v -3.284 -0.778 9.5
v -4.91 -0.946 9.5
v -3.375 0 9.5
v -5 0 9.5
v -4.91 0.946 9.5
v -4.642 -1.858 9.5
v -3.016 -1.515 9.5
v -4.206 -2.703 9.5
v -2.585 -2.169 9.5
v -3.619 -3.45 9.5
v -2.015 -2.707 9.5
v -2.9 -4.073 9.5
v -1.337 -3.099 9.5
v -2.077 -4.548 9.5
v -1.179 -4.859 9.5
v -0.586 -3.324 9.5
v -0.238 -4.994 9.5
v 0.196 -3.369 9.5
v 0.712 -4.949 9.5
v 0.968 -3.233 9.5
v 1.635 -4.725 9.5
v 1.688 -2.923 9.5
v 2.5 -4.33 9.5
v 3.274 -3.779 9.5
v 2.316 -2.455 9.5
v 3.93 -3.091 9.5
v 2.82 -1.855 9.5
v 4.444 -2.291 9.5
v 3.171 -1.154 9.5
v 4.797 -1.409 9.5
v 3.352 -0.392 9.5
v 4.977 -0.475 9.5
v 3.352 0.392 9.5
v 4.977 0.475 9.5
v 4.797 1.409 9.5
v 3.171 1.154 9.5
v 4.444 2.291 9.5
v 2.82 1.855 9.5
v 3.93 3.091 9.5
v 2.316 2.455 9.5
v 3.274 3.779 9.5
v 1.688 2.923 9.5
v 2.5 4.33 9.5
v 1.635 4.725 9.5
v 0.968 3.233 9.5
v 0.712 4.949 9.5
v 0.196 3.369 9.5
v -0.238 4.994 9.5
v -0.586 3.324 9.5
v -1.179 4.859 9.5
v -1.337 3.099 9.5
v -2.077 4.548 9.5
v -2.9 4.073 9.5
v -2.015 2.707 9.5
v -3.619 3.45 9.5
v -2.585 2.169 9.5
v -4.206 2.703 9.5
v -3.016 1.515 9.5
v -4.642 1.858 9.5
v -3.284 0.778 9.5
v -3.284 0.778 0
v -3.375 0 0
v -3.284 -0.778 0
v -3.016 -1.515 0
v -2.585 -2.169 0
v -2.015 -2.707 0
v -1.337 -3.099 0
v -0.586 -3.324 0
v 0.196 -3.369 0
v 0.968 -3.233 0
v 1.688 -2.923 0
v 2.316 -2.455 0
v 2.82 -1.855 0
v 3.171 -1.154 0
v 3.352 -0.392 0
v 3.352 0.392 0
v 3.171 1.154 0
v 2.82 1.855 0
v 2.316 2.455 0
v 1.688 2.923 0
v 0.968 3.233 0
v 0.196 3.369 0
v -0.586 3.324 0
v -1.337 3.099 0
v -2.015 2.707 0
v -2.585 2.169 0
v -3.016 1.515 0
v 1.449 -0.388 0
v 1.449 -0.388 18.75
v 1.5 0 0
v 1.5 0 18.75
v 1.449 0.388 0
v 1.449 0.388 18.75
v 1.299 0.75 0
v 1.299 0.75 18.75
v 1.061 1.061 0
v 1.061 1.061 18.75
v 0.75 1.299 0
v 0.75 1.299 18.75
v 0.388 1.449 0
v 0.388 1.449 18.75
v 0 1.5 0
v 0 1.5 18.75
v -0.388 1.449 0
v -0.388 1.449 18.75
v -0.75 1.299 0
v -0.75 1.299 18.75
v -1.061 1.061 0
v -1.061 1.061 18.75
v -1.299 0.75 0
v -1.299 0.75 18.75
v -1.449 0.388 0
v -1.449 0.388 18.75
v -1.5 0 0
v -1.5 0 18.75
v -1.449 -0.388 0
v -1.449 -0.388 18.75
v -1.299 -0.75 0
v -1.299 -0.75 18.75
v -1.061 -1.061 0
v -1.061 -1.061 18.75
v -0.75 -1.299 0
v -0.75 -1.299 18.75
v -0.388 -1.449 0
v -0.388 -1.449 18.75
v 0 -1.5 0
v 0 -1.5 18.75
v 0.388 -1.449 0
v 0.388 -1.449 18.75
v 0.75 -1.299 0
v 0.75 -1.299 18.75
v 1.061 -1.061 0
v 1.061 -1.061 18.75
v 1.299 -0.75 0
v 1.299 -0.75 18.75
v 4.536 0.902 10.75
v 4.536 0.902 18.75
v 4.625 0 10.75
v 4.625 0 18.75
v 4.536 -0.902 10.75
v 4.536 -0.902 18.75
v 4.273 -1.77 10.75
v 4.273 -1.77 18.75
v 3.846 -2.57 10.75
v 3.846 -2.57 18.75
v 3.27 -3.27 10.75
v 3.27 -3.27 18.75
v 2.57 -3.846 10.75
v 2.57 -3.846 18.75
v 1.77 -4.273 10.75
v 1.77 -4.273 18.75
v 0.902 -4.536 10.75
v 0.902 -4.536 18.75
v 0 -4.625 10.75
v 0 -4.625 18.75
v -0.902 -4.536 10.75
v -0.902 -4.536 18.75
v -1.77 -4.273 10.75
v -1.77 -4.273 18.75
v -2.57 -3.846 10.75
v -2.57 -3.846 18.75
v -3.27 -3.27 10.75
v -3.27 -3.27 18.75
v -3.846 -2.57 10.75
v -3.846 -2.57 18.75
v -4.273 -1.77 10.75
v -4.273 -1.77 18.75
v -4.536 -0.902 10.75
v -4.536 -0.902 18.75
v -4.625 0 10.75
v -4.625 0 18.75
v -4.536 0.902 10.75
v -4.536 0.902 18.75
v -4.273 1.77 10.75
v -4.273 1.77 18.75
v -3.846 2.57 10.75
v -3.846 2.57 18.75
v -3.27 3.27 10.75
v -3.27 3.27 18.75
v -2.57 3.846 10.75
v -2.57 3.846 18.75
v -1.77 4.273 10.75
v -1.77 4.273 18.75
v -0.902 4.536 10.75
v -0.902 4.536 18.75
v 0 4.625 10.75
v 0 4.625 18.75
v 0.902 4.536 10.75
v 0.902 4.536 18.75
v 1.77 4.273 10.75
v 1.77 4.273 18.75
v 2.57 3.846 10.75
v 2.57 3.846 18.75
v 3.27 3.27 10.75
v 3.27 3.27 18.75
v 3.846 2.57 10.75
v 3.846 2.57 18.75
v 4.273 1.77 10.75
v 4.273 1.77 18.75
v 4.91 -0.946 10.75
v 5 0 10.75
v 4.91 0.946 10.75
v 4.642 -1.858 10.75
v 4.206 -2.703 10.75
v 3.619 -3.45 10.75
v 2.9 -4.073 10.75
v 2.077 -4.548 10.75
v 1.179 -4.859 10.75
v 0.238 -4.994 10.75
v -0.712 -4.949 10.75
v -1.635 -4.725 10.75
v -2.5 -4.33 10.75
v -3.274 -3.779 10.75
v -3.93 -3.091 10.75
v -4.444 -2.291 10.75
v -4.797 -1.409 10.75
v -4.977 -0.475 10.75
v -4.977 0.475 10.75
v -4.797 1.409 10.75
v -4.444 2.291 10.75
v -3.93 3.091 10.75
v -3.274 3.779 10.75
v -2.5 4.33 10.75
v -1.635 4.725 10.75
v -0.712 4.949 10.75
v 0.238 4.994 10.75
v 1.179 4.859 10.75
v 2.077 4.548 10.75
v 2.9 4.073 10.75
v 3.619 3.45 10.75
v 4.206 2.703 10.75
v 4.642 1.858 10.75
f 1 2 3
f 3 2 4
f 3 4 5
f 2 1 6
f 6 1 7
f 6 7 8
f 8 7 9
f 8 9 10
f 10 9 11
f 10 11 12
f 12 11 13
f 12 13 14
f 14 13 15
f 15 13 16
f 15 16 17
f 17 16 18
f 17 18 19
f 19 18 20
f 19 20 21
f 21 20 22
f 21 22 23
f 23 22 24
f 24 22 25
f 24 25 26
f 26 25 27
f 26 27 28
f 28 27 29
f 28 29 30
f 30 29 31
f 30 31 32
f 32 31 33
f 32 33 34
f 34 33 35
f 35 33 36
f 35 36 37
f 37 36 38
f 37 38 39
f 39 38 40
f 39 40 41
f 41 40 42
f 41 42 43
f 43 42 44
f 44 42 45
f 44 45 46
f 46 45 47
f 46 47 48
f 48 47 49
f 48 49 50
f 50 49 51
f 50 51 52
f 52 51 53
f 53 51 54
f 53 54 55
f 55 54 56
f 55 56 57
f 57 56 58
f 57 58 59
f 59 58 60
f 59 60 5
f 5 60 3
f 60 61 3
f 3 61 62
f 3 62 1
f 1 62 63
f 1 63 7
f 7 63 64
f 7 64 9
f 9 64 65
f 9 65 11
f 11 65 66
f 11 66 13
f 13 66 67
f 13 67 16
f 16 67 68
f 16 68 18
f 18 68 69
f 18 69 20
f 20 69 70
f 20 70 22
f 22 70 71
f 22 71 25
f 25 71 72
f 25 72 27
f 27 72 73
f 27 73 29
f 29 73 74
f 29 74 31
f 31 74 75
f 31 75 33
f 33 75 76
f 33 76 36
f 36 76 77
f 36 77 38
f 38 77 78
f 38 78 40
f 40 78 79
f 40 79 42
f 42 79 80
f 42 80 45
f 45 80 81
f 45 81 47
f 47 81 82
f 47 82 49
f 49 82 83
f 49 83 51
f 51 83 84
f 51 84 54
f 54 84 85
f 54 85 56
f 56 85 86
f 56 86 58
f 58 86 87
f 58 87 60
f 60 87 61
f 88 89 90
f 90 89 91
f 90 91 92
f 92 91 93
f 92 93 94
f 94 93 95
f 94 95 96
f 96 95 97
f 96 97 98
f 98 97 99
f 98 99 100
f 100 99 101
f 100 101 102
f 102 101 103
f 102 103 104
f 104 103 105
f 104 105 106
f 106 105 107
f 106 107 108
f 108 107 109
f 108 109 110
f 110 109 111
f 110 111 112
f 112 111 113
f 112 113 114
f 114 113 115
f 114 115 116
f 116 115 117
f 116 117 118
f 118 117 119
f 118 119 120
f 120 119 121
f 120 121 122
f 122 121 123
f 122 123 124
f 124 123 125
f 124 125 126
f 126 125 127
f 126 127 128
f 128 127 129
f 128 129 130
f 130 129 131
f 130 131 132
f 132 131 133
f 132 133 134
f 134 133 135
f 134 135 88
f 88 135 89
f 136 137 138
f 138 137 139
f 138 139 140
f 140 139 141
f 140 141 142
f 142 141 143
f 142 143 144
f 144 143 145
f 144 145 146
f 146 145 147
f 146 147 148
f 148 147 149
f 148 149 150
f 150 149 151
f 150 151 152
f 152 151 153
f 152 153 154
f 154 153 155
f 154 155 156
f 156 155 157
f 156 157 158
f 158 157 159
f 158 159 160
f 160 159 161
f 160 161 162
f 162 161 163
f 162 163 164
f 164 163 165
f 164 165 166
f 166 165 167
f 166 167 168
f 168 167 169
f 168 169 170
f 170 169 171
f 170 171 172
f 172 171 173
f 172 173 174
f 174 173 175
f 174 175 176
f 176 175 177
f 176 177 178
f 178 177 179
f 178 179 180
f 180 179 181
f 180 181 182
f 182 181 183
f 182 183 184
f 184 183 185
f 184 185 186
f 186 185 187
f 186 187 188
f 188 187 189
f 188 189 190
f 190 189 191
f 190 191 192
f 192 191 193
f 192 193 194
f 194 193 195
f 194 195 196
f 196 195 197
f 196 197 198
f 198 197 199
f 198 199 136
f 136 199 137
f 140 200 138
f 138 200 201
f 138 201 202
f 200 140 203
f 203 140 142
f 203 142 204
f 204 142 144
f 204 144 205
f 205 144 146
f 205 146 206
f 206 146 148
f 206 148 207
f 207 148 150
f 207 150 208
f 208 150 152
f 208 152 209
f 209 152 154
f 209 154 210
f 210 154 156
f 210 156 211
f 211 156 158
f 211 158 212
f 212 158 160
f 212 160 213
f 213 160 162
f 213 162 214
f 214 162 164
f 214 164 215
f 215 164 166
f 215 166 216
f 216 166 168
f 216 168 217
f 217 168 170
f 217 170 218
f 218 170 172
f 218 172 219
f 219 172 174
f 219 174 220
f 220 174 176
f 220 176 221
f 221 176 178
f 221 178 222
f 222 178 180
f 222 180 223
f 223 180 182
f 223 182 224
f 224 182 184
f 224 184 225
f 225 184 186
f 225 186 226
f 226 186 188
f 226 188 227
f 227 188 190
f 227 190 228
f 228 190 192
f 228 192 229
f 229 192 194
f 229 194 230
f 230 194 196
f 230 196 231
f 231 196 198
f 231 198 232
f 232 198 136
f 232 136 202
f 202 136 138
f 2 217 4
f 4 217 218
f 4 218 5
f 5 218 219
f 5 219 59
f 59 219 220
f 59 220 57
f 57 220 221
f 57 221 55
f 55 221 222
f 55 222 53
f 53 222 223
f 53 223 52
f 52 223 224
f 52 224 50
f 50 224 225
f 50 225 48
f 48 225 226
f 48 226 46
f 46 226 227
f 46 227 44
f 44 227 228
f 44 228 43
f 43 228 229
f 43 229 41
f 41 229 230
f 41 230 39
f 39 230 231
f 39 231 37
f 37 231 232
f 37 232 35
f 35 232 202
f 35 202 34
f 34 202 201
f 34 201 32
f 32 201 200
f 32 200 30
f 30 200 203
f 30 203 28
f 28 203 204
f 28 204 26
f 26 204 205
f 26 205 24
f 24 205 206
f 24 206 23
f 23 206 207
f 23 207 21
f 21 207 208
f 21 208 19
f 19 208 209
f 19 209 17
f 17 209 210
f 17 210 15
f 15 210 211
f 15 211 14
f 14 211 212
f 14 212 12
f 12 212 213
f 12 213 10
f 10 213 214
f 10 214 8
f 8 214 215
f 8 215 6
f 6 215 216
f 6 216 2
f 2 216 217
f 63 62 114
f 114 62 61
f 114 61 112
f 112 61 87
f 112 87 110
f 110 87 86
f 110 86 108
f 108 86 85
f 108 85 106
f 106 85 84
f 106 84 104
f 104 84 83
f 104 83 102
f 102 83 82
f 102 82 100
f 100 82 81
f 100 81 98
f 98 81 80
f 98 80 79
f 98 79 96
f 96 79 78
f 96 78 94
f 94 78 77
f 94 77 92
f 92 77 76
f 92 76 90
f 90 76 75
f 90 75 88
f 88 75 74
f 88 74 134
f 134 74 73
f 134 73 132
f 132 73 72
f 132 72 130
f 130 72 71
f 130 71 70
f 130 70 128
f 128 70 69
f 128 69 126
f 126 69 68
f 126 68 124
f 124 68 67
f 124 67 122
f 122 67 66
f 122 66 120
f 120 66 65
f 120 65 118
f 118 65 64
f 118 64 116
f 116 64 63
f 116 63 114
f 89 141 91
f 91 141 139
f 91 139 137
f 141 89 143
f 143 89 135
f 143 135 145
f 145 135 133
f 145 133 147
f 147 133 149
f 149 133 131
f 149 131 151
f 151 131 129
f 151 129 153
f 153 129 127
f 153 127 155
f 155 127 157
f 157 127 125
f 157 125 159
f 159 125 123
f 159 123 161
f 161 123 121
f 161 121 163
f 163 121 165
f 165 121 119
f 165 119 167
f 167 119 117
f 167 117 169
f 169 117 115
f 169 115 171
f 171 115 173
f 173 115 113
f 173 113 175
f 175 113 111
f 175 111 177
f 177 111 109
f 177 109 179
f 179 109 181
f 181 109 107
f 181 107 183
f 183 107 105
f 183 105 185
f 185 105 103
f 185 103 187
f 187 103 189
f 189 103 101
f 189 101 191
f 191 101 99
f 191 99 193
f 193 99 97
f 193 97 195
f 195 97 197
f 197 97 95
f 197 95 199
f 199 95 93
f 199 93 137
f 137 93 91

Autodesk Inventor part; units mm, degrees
ref_plane "YZ Plane" through (0, 0, 0) normal (1, 0, 0) x (0, 1, 0)
ref_plane "XZ Plane" through (0, 0, 0) normal (0, 1, 0) x (-1, 0, 0)
ref_plane "XY Plane" through (0, 0, 0) normal (0, 0, 1) x (1, 0, 0)
sketch "Sketch1" plane through (0, 0, 0) normal (0, 0, 1) x (1, 0, 0)
  circle A0 centre (0, 0) radius 5
  dimension "d0" = 10
extrude "Extrusion1" add sketch "Sketch1" along normal blind 18.75
sketch "Sketch2" plane through (0, 0, 18.75) normal (0, 0, 1) x (1, 0, 0)
  circle A0 centre (0, 0) radius 5
  circle A1 centre (0, 0) radius 4.625
  dimension "d3" = 9.25
extrude "Extrusion2" cut sketch "Sketch2" against normal blind 8
sketch "Sketch3" plane through (0, 0, 18.75) normal (0, 0, 1) x (1, 0, 0)
  circle A0 centre (0, 0) radius 1.5
  dimension "d6" = 3
extrude "Extrusion3" cut sketch "Sketch3" against normal blind 50
sketch "Sketch4" plane through (0, 0, 0) normal (0, 0, -1) x (-1, 0, 0)
  circle A0 centre (0, 0) radius 3.375
  circle A1 centre (0, 0) radius 5
  dimension "d9" = 6.75
  dimension "d10" = 10
extrude "Extrusion4" cut sketch "Sketch4" against normal blind 8.25
sketch "Sketch5" plane through (0, 0, 8.25) normal (0, 0, -1) x (-1, 0, 0)
  circle A0 centre (0, 0) radius 3.375
  circle A1 centre (0, 0) radius 3.375 projected
  circle A2 centre (0, 0) radius 5
  dimension "d13" = 6.75
  dimension "d14" = 10
thread "Thread1" size "M7x1" class "6g" standard "ANSI Metric M Profile" full length
thread "Thread2" size "M10x1.5" class "6g" standard "ANSI Metric M Profile" full length
sketch "Sketch6" plane through (0, 0, 8.25) normal (0, 0, -1) x (-1, 0, 0)
  circle A0 centre (0, 0) radius 3.375
  circle A1 centre (0, 0) radius 5
extrude "Extrusion5" cut sketch "Sketch6" against normal blind 1.25
properties part number "cuvette_holder_fiber_optics_connector"
